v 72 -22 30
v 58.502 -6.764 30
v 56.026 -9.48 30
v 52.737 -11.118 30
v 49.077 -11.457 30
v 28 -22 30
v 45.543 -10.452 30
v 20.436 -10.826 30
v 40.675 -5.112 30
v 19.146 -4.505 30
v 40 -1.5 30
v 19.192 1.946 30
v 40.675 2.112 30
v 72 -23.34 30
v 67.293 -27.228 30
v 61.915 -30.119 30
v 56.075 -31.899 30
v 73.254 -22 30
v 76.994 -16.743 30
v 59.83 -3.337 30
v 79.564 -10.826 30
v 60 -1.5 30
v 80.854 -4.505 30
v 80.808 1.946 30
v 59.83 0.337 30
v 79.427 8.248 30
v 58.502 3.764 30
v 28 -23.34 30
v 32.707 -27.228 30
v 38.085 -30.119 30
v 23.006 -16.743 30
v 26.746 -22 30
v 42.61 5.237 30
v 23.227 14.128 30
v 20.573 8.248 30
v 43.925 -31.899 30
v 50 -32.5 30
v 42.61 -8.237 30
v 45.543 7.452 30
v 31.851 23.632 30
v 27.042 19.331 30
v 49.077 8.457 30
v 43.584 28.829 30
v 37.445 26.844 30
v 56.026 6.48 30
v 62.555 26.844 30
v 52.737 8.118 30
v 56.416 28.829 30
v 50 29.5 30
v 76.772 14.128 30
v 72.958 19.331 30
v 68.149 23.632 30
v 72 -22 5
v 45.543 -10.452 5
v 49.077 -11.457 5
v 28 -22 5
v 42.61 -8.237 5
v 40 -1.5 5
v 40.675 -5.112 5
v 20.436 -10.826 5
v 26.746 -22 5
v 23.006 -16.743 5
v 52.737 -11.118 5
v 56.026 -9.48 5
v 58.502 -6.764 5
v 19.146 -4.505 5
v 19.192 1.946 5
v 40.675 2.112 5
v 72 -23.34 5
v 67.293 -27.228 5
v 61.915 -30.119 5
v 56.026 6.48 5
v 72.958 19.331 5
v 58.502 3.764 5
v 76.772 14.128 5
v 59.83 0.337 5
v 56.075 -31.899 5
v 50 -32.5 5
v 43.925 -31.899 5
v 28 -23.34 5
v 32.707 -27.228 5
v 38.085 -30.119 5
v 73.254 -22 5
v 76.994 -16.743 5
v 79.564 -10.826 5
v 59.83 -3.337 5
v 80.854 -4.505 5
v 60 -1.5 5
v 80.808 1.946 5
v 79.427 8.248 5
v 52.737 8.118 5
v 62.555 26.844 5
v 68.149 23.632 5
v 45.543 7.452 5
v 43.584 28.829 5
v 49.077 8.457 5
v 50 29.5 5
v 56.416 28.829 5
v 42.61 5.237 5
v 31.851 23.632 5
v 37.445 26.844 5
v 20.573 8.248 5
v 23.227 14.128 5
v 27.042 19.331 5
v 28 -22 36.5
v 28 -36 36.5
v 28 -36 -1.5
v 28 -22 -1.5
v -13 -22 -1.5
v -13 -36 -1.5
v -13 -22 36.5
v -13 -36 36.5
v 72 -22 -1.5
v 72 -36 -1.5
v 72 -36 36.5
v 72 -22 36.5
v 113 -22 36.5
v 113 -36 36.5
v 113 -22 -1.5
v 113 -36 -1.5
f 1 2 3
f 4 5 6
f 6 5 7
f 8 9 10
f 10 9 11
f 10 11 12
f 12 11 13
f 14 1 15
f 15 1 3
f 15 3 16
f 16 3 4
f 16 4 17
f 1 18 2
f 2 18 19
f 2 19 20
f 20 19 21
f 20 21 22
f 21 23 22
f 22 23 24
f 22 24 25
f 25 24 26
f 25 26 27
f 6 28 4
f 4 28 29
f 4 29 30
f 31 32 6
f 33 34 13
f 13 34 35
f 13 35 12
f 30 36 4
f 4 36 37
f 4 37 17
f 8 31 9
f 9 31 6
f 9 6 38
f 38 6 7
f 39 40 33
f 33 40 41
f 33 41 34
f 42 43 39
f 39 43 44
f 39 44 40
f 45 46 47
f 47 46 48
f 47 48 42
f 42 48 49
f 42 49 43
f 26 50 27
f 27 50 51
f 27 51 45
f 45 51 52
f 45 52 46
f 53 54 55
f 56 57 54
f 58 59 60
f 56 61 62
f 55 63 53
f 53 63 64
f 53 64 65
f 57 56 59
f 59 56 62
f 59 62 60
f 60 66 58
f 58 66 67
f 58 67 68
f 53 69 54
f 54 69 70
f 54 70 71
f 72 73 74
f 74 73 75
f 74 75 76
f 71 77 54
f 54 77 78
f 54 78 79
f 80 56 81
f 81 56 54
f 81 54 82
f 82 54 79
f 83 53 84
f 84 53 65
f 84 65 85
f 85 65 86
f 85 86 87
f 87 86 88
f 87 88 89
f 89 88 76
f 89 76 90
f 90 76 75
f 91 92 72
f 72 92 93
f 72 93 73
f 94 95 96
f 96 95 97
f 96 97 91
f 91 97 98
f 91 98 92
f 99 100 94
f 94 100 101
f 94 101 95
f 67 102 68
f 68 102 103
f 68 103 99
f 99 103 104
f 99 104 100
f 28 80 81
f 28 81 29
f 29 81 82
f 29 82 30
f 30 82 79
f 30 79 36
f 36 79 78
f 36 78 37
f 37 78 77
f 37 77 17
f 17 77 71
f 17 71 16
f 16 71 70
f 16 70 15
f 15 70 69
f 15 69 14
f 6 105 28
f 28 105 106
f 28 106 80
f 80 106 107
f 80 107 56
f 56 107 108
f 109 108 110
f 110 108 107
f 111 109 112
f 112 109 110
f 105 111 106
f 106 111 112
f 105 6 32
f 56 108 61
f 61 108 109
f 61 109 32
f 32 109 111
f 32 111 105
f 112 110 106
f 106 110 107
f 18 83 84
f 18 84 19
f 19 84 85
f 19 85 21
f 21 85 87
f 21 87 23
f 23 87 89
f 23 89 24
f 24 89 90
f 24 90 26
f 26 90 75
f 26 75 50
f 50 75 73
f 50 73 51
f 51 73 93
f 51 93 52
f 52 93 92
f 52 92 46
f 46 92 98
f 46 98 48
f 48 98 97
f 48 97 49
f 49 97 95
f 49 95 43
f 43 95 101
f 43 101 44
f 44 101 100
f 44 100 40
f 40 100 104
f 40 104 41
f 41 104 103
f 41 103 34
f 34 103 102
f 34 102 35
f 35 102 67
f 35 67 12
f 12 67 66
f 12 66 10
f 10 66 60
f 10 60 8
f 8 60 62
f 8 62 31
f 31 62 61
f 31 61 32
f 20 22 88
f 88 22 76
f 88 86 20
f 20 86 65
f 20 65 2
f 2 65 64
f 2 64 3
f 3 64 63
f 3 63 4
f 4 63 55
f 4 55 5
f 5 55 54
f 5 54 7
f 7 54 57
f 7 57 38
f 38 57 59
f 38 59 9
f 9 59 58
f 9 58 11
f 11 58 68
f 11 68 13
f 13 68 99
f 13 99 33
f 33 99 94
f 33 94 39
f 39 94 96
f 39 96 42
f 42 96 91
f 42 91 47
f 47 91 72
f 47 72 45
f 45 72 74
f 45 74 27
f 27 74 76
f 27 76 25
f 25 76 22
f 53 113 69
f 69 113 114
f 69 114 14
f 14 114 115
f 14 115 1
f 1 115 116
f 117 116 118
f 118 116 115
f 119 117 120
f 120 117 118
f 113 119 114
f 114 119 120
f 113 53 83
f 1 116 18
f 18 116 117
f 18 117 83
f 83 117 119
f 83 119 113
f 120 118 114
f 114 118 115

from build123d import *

# Parameters (mm, degrees)
SKETCH_13_W           = 41
SKETCH_13_H           = 38
BOSS_EXTRUDE1_DEPTH   = 14
BOSS_EXTRUDE1_2_DEPTH = 14
SKETCH1_R             = 31
SKETCH1_R_2           = 10
BOSS_EXTRUDE2_DEPTH   = 25


with BuildPart() as part:
    # Эскиз13 → Boss-Extrude1 (new body)
    with BuildSketch(Plane(origin=(0, -36, 0), x_dir=(-1, 0, 0), z_dir=(0, 1, 0))):
        with Locations((-7.5, 17.5)):
            Rectangle(SKETCH_13_W, SKETCH_13_H)
    extrude(amount=BOSS_EXTRUDE1_DEPTH)



with BuildPart() as body_2:
    # Эскиз13 → Boss-Extrude1 2 (new body)
    with BuildSketch(Plane(origin=(0, -36, 0), x_dir=(-1, 0, 0), z_dir=(0, 1, 0))):
        with Locations((-92.5, 17.5)):
            Rectangle(SKETCH_13_W, SKETCH_13_H)
    extrude(amount=BOSS_EXTRUDE1_2_DEPTH)


with BuildPart() as part_1:
    add(part.part)

    add(body_2.part)  # Boss-Extrude2 merges body 2
    # Sketch1 → Boss-Extrude2 (add)
    with BuildSketch(Plane.XY.offset(5)):
        with Locations((50, -1.5)):
            Circle(SKETCH1_R)
        with Locations((50, -1.5)):
            Circle(SKETCH1_R_2, mode=Mode.SUBTRACT)
    extrude(amount=BOSS_EXTRUDE2_DEPTH)


solid = part_1.part
